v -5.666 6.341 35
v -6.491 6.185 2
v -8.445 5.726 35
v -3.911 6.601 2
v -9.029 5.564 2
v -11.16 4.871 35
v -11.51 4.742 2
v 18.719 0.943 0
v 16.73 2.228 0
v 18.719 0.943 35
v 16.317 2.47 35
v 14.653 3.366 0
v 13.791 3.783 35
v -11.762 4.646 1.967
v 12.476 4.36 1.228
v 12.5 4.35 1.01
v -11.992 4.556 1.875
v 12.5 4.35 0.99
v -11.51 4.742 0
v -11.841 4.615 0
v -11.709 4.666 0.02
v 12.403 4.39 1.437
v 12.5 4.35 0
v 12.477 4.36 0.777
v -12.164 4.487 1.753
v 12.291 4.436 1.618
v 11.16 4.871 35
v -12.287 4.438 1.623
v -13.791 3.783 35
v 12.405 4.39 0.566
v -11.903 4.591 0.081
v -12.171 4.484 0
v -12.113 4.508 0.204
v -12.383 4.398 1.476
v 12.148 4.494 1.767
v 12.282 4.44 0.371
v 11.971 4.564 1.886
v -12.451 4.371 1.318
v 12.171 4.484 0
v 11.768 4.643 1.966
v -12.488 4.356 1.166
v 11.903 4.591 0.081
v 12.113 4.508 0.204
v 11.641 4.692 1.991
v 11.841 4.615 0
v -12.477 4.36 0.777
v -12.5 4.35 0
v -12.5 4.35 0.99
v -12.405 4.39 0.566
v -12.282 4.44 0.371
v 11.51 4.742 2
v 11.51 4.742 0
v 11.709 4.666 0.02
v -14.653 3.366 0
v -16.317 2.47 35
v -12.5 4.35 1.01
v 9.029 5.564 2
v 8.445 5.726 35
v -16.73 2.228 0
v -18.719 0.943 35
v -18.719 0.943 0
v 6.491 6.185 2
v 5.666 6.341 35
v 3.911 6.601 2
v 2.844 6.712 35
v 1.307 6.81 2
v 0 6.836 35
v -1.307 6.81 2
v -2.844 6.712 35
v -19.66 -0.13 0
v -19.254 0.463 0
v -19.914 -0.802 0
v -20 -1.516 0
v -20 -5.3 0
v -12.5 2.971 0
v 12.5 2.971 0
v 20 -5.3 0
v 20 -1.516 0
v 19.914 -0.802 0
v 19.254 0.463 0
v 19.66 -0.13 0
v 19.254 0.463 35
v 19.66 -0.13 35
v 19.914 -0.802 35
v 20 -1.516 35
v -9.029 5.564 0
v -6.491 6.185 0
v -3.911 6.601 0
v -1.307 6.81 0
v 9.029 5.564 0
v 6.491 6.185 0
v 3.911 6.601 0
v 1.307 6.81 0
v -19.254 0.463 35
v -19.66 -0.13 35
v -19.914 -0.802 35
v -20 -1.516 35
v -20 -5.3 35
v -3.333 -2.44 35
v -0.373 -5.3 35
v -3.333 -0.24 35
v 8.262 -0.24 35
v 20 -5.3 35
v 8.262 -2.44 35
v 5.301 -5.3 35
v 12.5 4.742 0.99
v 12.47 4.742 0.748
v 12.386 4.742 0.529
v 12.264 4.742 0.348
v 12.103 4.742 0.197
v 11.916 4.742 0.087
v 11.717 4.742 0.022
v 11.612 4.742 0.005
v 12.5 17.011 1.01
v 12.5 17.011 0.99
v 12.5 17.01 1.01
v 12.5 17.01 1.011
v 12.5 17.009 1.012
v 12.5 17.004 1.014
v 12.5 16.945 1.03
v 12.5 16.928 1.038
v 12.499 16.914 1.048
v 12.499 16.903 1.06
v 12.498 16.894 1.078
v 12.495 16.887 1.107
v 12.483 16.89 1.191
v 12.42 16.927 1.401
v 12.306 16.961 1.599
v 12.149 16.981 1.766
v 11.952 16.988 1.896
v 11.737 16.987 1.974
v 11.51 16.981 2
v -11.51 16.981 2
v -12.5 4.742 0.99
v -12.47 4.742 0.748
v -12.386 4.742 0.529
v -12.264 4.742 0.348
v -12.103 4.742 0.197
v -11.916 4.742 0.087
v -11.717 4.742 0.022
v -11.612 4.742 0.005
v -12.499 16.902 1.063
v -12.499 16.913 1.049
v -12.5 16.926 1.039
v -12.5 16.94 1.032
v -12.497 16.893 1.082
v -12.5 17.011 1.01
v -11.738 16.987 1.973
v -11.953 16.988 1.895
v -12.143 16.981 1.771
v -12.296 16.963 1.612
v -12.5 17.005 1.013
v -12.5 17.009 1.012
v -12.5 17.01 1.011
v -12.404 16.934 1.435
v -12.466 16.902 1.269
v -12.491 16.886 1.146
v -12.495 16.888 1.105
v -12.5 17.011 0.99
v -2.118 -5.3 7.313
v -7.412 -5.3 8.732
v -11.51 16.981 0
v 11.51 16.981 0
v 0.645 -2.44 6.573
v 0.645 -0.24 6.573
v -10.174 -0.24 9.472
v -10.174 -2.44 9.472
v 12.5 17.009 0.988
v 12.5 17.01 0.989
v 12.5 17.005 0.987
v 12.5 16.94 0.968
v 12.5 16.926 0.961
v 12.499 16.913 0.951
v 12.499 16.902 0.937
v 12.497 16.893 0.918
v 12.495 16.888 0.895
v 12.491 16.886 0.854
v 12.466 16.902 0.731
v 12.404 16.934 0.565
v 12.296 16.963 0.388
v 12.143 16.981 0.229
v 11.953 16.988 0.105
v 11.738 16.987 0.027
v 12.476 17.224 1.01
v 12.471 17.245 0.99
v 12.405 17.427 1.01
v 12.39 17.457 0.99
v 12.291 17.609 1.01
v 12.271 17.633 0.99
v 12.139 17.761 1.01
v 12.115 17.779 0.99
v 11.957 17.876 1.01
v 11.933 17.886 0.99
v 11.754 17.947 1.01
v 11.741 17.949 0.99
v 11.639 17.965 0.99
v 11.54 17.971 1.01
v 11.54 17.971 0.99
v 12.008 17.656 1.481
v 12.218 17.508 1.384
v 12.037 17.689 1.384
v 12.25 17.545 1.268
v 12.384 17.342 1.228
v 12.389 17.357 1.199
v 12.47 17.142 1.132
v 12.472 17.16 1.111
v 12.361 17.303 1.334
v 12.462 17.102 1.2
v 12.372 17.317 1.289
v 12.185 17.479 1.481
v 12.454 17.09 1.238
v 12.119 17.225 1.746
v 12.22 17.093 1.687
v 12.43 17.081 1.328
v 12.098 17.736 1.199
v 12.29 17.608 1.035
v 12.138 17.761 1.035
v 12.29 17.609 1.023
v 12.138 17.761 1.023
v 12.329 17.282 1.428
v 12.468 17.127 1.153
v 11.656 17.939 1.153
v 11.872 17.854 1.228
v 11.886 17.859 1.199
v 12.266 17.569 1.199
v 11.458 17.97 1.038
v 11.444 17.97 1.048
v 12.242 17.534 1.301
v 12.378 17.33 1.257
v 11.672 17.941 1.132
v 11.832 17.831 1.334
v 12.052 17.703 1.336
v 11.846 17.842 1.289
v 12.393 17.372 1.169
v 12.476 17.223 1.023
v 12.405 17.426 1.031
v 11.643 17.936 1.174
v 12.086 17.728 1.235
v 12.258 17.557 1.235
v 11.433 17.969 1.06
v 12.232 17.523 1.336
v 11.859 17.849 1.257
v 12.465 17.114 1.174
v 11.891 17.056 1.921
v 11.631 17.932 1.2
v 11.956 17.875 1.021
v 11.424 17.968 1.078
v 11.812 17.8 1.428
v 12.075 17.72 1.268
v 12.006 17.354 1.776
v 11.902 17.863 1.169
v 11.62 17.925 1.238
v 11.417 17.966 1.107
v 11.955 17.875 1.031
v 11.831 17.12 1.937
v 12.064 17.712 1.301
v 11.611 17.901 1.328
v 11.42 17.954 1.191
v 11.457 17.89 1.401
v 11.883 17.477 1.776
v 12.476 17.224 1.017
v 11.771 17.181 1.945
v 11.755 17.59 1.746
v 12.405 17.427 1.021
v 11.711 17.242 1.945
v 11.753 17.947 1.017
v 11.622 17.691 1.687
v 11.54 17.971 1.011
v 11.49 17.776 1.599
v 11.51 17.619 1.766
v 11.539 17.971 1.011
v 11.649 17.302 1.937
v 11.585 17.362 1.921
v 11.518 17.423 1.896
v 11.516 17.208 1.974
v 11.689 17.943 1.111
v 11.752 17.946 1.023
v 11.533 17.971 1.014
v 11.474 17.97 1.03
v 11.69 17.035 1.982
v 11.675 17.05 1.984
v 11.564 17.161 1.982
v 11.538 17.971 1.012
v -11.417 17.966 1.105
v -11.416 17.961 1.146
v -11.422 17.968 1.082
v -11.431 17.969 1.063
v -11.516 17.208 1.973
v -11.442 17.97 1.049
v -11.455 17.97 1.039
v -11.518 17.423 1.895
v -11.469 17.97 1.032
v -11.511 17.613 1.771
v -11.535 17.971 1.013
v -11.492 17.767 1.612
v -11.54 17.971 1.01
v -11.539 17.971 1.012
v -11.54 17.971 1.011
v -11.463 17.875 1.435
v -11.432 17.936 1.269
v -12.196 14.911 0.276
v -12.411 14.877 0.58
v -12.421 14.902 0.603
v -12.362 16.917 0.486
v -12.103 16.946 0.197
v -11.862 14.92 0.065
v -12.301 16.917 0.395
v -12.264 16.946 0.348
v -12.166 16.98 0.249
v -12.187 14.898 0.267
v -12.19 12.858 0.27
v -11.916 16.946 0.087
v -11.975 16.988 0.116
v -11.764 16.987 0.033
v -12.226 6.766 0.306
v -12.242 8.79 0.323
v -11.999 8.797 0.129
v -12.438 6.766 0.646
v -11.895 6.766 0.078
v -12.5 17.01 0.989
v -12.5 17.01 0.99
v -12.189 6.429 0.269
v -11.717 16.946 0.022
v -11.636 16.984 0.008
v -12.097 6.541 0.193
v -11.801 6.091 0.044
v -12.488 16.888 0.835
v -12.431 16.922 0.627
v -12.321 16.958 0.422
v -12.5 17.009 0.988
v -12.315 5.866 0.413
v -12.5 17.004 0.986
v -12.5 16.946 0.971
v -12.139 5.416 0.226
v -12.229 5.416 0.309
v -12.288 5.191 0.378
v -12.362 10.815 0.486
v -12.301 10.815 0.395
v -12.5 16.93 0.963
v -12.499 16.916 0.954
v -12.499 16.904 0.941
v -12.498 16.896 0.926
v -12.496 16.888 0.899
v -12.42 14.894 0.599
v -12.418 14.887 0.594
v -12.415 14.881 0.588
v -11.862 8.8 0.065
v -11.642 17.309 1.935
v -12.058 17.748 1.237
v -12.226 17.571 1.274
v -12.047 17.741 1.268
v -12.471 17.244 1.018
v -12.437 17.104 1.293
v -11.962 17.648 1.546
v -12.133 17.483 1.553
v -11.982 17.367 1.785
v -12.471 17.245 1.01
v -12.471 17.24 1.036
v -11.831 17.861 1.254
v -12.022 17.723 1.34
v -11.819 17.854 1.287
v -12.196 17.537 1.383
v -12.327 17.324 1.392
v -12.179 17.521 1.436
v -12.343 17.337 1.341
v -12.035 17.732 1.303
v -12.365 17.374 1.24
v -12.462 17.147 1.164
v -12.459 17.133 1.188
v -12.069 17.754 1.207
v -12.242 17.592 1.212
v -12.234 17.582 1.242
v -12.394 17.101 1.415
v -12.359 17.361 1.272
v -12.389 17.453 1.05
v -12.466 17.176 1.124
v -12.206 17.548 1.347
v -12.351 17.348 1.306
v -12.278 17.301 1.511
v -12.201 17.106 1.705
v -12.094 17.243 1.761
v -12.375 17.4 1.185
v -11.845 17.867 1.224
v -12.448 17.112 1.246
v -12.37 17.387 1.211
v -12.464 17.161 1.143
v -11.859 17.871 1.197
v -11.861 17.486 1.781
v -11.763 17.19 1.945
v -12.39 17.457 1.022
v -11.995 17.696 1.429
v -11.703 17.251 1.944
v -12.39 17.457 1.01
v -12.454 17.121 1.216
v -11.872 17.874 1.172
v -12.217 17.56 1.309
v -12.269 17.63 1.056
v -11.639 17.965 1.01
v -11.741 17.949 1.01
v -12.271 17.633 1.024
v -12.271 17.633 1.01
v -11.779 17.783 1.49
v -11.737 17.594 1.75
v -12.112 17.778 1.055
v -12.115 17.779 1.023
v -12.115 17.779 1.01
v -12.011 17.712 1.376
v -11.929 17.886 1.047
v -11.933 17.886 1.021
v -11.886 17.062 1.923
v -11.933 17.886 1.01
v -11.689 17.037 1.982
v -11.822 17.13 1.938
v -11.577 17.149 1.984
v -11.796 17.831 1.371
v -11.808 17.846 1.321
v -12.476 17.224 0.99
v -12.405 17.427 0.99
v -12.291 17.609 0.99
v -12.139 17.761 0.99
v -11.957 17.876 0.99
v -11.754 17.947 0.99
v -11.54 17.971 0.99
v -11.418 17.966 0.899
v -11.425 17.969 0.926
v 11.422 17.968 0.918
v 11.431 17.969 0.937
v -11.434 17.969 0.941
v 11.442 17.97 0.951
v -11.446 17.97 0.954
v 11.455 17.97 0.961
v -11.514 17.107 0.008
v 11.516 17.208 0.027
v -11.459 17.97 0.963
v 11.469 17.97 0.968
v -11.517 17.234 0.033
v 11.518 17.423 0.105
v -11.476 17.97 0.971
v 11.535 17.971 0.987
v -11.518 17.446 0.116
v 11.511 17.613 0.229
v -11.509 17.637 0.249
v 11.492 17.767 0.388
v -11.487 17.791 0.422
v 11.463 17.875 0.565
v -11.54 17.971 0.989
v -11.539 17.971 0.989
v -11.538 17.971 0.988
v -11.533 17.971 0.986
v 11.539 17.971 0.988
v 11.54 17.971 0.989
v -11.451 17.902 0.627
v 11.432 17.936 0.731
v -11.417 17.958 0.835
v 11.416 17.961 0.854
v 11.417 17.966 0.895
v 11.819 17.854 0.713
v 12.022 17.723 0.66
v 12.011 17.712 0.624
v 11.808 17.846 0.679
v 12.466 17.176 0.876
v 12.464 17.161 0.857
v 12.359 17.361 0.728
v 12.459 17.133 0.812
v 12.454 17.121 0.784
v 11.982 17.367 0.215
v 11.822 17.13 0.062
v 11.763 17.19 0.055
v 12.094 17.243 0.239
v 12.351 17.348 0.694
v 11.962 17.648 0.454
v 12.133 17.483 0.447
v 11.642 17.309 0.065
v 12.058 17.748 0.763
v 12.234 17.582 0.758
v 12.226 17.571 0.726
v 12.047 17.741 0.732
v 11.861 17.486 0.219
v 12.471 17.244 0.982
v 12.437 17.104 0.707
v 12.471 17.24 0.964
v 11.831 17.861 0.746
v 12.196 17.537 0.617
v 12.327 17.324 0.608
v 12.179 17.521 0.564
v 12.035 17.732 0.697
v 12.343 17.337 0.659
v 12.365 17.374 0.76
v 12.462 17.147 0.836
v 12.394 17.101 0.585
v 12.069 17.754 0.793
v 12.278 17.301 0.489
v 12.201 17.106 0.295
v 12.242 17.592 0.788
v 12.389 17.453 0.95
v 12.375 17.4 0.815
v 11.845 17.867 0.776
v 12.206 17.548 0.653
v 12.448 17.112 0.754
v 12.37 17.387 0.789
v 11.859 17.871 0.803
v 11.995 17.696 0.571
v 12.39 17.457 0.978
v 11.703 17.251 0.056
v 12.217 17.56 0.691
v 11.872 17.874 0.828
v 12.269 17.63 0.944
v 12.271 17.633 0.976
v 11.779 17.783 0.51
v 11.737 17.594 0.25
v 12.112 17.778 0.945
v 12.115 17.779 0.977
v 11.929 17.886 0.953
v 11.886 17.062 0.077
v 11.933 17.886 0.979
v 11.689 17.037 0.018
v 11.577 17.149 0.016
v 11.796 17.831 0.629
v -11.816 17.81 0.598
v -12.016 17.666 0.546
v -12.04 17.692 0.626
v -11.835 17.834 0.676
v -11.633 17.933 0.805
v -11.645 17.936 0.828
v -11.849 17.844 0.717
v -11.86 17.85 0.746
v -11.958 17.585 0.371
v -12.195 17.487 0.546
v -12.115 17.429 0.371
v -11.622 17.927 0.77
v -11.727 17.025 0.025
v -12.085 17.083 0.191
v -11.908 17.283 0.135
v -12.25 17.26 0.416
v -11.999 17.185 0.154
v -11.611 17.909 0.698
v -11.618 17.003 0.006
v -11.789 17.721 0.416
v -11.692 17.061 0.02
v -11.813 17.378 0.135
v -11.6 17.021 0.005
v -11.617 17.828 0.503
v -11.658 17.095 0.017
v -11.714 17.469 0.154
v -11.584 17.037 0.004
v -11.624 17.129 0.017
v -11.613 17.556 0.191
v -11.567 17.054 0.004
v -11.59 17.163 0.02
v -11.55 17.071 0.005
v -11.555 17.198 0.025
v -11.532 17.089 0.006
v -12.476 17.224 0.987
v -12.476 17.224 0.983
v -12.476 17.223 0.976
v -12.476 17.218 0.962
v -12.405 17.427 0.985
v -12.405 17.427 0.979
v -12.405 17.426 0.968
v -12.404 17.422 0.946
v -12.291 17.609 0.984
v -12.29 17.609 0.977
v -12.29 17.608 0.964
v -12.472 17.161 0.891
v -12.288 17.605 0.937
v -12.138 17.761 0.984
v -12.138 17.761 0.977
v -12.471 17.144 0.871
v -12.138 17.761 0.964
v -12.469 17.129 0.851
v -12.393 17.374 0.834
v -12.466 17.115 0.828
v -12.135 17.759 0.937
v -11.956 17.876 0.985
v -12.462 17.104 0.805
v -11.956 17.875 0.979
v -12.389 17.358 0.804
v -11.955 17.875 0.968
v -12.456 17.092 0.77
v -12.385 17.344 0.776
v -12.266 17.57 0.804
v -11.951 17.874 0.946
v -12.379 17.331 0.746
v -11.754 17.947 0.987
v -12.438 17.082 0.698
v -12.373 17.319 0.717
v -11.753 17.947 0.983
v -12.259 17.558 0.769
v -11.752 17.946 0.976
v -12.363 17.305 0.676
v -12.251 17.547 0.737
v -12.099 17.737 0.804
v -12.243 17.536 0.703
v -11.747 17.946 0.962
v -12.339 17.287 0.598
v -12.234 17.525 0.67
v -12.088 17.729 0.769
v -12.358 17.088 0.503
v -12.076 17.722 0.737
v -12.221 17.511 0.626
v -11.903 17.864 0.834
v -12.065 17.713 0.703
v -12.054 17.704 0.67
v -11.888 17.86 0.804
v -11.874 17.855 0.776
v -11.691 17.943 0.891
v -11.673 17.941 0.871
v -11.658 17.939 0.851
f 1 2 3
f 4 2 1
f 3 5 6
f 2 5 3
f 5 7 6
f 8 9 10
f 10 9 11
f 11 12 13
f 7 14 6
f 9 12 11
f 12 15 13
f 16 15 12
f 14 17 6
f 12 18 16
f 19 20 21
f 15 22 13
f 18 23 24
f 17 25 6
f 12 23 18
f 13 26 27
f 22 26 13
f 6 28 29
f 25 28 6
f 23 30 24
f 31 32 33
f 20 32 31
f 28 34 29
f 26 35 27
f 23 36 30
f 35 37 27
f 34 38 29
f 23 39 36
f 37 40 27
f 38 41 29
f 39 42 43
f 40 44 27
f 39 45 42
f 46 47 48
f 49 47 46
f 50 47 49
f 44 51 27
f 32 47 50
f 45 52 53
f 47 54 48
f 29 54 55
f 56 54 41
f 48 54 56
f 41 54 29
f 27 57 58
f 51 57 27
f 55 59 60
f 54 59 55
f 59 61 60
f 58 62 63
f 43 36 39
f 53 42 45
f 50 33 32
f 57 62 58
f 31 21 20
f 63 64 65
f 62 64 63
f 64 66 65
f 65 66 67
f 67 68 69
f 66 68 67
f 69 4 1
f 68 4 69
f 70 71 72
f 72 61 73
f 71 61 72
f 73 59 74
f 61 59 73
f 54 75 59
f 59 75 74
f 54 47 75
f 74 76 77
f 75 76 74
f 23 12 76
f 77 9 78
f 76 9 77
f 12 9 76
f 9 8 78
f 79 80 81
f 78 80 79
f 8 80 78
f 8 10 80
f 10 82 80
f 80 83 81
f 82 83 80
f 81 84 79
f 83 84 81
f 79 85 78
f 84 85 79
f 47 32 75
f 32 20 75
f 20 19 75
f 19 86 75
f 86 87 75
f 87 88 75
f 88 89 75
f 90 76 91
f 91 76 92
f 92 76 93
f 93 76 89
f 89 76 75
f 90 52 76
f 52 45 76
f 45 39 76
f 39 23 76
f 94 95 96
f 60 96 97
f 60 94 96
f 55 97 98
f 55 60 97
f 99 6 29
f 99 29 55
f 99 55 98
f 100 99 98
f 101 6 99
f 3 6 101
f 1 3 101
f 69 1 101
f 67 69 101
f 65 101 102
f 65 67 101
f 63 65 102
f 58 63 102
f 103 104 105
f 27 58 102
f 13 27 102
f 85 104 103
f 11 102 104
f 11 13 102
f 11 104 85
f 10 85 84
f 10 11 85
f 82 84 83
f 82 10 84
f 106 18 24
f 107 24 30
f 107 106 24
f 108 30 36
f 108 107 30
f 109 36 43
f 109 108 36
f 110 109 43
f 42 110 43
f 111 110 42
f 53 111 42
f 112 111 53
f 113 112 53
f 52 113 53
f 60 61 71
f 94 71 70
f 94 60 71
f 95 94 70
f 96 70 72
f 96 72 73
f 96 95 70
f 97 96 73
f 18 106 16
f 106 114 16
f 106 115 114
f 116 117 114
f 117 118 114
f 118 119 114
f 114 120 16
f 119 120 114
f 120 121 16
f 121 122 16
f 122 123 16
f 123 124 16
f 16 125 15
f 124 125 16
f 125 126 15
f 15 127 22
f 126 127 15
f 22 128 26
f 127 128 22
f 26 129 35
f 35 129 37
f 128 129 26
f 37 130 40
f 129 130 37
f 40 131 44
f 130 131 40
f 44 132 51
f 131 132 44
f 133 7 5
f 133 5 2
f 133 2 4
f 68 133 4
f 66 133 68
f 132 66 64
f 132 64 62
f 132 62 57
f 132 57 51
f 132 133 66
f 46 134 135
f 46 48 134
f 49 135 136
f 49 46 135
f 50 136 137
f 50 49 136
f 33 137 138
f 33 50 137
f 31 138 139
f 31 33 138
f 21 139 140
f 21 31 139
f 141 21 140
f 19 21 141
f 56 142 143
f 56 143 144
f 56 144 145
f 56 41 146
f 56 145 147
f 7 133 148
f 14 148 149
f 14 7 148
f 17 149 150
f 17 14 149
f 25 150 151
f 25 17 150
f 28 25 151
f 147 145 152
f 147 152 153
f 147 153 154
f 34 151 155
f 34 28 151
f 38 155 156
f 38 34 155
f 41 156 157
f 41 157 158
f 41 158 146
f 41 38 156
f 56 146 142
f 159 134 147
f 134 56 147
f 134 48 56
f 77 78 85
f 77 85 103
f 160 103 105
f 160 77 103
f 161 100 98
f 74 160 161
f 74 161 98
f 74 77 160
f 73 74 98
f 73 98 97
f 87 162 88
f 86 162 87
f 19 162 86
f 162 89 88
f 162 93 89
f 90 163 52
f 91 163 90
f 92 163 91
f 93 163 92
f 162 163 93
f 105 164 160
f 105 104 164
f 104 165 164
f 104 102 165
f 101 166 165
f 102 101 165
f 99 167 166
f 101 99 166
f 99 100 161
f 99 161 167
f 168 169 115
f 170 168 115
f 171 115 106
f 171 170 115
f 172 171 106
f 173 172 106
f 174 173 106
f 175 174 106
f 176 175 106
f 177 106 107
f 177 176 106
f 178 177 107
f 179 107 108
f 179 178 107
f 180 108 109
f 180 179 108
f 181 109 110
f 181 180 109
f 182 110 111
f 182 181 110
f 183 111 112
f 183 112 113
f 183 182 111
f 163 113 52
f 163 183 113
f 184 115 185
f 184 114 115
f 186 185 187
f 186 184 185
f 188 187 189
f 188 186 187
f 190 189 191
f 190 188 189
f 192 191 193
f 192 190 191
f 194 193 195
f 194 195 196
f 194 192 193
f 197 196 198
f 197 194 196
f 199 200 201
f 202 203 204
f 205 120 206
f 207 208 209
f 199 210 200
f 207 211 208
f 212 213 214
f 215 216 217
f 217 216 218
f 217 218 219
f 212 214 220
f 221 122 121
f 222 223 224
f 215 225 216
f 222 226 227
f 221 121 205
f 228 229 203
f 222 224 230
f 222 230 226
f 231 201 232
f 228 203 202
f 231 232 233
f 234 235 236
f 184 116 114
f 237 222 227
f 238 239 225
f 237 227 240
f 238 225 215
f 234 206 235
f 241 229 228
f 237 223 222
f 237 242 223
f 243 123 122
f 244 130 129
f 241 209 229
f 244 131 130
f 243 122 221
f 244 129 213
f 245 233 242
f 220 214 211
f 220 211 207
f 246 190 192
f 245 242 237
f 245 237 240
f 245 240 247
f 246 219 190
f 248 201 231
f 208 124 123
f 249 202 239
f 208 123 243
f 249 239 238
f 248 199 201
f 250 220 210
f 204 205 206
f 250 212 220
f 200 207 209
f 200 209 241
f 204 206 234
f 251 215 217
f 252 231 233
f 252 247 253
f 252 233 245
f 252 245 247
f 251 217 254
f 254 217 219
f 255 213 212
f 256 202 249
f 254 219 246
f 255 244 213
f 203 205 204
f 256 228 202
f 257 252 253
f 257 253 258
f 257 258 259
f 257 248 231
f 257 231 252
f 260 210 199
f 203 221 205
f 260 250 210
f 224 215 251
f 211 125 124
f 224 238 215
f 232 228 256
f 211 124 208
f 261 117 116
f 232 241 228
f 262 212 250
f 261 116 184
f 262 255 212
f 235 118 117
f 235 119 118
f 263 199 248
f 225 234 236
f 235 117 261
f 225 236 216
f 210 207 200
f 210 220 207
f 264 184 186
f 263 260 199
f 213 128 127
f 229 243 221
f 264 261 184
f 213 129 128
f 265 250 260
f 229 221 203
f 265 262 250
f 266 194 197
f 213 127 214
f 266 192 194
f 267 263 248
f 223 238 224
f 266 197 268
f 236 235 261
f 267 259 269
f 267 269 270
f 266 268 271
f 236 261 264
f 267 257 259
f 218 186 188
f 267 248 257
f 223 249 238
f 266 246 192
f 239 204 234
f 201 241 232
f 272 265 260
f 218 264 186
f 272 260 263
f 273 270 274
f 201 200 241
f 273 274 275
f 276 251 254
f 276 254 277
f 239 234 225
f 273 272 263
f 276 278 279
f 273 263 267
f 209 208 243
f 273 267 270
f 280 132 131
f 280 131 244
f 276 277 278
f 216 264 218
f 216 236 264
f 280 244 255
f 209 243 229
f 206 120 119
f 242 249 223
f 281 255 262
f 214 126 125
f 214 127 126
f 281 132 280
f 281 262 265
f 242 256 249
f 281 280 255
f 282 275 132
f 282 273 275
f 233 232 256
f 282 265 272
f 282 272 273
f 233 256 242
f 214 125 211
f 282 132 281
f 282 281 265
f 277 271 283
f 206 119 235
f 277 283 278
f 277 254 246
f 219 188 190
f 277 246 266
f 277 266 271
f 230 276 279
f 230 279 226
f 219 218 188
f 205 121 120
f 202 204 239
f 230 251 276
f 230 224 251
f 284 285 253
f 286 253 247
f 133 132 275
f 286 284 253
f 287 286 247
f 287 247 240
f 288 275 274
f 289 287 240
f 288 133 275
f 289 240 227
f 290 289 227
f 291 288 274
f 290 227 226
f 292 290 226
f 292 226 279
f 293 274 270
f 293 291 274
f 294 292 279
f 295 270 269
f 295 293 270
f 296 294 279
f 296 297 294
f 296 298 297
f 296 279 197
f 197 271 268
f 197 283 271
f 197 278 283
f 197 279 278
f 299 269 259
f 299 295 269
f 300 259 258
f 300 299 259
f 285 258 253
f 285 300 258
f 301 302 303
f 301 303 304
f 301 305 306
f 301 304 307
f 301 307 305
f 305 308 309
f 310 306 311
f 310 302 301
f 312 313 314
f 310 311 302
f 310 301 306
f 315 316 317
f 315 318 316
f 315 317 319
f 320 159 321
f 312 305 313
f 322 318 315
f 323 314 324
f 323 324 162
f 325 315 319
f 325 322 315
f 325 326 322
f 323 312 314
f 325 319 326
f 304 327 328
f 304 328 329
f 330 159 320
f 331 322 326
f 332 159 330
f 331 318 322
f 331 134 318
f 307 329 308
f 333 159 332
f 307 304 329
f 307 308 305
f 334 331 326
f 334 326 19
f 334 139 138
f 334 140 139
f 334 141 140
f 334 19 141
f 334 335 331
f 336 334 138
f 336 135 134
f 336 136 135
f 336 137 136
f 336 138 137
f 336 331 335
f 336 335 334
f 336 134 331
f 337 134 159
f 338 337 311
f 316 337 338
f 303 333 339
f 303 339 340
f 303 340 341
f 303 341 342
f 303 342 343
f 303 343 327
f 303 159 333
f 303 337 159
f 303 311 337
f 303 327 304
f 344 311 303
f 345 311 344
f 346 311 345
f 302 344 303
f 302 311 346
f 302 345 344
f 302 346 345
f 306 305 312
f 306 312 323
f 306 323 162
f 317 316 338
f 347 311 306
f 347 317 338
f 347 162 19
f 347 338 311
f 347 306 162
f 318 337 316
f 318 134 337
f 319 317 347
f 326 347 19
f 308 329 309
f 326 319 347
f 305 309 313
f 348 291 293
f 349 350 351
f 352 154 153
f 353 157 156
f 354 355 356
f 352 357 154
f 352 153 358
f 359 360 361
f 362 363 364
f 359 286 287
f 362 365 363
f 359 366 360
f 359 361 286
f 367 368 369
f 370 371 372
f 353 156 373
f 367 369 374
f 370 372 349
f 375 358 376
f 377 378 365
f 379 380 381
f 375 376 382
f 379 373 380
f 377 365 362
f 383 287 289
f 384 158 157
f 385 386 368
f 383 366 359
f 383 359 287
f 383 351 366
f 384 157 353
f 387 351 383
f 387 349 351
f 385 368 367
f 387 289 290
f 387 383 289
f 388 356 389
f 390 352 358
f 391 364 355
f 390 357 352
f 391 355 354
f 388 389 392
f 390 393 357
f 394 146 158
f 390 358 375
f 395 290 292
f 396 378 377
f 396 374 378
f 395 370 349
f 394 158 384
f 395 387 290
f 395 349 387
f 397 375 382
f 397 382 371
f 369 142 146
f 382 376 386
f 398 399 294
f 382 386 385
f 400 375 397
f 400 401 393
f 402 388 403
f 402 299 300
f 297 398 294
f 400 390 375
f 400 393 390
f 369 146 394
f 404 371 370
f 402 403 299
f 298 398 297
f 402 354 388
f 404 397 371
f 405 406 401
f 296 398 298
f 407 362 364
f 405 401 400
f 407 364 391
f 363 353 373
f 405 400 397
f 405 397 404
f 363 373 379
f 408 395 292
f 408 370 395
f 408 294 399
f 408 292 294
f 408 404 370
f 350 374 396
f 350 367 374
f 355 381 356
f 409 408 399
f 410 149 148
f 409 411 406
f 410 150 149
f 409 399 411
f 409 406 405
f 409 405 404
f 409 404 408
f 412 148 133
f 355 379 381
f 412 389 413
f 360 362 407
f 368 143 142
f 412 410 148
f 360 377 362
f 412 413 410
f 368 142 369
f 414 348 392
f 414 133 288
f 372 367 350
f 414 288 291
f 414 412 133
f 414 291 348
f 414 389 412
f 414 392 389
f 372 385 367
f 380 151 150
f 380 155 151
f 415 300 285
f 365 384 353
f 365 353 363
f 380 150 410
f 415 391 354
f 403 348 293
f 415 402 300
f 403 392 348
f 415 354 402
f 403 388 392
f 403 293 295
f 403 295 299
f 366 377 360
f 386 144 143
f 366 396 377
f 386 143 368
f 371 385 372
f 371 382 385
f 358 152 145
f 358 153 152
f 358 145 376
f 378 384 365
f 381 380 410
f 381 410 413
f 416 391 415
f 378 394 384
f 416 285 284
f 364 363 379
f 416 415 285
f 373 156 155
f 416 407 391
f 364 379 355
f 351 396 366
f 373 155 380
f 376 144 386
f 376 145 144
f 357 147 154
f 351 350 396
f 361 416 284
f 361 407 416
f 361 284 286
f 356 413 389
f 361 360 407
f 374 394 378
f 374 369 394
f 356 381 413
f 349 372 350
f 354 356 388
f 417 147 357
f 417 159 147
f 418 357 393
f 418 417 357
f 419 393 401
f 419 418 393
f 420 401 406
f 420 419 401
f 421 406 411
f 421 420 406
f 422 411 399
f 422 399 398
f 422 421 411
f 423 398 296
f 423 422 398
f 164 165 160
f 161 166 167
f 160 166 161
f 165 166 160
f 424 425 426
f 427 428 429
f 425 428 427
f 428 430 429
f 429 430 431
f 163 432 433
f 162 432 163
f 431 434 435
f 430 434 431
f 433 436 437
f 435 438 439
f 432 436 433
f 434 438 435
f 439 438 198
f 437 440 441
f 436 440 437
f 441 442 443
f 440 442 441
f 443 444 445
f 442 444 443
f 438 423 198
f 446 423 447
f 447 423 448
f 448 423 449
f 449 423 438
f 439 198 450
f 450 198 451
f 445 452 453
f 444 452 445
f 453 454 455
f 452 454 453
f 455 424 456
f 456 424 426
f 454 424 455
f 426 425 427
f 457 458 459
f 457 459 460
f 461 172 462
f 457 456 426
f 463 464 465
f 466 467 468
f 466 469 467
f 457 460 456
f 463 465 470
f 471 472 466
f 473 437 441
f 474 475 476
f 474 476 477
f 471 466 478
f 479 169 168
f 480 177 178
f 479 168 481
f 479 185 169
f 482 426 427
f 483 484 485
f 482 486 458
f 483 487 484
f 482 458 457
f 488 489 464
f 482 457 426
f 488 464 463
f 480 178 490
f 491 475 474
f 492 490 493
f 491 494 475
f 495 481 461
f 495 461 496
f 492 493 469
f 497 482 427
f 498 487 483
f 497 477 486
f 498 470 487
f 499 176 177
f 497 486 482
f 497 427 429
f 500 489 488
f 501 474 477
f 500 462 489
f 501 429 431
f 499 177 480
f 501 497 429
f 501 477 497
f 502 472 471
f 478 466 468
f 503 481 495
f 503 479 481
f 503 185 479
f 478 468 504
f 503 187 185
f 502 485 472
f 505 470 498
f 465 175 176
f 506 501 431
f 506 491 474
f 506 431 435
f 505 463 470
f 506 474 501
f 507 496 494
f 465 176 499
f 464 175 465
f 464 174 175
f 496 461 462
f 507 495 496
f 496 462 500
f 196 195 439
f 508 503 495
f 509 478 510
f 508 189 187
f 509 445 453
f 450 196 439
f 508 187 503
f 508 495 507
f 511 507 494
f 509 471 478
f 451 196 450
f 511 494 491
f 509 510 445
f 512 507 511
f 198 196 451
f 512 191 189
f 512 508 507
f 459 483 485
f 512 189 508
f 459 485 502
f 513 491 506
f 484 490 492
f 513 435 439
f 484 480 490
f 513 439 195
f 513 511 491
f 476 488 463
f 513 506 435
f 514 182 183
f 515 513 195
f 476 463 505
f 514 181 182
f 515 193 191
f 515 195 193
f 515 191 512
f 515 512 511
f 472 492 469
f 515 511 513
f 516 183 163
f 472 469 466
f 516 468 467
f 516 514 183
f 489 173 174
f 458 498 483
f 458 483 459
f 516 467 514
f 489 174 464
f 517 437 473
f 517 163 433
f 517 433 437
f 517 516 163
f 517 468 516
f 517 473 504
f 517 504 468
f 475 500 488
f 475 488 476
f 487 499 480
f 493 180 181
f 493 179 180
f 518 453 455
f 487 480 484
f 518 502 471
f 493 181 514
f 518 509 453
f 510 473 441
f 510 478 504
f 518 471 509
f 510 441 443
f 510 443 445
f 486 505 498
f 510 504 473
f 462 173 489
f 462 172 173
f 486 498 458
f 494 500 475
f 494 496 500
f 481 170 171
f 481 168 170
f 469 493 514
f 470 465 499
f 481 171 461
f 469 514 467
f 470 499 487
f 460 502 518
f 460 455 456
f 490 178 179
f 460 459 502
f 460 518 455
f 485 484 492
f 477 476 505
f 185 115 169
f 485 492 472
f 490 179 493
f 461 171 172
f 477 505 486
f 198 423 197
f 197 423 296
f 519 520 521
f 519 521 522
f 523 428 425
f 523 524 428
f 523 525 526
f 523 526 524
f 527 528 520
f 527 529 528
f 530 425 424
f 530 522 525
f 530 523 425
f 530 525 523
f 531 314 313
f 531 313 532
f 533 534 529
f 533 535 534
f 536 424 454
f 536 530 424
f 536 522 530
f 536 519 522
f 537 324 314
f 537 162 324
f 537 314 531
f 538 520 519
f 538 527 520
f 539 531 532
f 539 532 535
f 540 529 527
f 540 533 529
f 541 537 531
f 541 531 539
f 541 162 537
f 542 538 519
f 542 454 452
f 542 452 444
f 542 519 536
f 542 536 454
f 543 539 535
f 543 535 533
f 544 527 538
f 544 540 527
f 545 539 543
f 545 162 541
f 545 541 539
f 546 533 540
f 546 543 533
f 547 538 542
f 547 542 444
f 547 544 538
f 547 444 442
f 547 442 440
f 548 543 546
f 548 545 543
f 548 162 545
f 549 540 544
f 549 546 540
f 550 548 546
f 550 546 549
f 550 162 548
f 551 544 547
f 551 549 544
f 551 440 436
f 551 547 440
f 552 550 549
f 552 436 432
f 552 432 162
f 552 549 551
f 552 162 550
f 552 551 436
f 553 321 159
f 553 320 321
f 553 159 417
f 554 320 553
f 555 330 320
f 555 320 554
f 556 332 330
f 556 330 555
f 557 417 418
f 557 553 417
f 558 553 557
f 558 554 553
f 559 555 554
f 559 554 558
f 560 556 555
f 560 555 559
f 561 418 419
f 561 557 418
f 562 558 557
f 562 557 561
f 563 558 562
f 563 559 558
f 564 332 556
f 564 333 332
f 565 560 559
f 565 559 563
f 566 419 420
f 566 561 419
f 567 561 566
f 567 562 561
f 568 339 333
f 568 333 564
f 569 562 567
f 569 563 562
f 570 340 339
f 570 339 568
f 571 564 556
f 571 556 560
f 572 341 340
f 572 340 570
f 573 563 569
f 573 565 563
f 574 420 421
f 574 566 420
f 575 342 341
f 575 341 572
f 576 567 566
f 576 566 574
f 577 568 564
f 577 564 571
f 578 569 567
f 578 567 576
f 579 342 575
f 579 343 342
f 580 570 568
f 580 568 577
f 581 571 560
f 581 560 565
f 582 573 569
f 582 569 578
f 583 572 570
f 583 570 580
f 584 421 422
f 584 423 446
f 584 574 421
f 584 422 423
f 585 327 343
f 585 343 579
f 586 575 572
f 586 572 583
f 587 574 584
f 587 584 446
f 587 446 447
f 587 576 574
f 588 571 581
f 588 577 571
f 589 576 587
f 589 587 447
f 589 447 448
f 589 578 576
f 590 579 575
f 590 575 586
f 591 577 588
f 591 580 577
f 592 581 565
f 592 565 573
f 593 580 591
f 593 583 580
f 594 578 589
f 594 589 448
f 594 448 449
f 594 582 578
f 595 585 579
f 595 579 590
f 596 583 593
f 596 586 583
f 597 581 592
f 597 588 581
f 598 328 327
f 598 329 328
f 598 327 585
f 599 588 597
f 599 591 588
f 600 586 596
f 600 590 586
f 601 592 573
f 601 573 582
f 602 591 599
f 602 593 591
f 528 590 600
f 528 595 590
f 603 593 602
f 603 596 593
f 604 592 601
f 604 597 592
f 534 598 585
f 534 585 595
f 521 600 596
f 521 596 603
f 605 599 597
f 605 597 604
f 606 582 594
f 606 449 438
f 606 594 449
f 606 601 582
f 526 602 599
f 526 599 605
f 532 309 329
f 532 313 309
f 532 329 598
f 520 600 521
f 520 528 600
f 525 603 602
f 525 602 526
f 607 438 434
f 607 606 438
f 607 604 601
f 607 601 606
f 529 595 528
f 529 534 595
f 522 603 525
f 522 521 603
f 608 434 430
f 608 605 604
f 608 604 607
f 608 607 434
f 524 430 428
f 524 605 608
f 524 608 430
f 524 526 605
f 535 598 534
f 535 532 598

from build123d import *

# Parameters (mm, degrees)
PAD_DEPTH    = 35
POCKET_DEPTH = 30
SKETCH003_W  = 25
SKETCH003_H  = 15
PAD001_DEPTH = 2
FILLET_R     = 0.99
FILLET001_R  = 0.96
FILLET002_R  = 3


with BuildPart() as part:
    # Sketch → Pad (new body)
    with BuildSketch(Plane.XY):
        with BuildLine():
            ThreePointArc((20, 0), (0, 6.835898), (-20, 0))
            Line((-20, -5.3), (-20, 0))
            Line((20, -5.3), (-20, -5.3))
            Line((20, 0), (20, -5.3))
        make_face()
    extrude(amount=PAD_DEPTH)

    # Sketch002 → Pocket (cut)
    with BuildSketch(Plane(origin=(3, 0, 37), x_dir=(0.965926, 0, -0.258819), z_dir=(0.258819, 0, 0.965926))):
        Polygon((-5.6, -0.240433), (5.6, -0.240433), (5.6, -2.440433), (2.7, -5.340433), (-2.7, -5.340433), (-5.6, -2.440433), align=None)
    extrude(amount=-POCKET_DEPTH, mode=Mode.SUBTRACT)

    # Sketch003 (on Face4 of Pocket) → Pad001 (join)
    with BuildSketch(Plane(origin=(0, 0, 0), x_dir=(1, 0, 0), z_dir=(0, 0, -1))):
        with Locations((0, -10.470599)):
            Rectangle(SKETCH003_W, SKETCH003_H)
    extrude(amount=-PAD001_DEPTH)

    # Fillet
    fillet_edges = [part.edges().sort_by_distance(p)[0] for p in [
        (-12.5, 11.160507, 2),
        (0, 17.970599, 2),
        (12.5, 11.160507, 2),
        (-12.5, 11.160507, 0),
        (0, 17.970599, 0),
        (12.5, 11.160507, 0),
    ]]
    fillet(fillet_edges, radius=FILLET_R)

    # Fillet001
    fillet001_edges = [part.edges().sort_by_distance(p)[0] for p in [
        (-12.149588, 17.620187, 1.765663),
        (-12.149588, 17.620187, 0.234337),
        (12.149588, 17.620187, 0.234337),
        (12.149588, 17.620187, 1.765663),
    ]]
    fillet(fillet001_edges, radius=FILLET001_R)

    # Fillet002
    fillet002_edges = [part.edges().sort_by_distance(p)[0] for p in [
        (-20, 0, 17.5),
        (20, 0, 17.5),
    ]]
    fillet(fillet002_edges, radius=FILLET002_R)


solid = part.part
